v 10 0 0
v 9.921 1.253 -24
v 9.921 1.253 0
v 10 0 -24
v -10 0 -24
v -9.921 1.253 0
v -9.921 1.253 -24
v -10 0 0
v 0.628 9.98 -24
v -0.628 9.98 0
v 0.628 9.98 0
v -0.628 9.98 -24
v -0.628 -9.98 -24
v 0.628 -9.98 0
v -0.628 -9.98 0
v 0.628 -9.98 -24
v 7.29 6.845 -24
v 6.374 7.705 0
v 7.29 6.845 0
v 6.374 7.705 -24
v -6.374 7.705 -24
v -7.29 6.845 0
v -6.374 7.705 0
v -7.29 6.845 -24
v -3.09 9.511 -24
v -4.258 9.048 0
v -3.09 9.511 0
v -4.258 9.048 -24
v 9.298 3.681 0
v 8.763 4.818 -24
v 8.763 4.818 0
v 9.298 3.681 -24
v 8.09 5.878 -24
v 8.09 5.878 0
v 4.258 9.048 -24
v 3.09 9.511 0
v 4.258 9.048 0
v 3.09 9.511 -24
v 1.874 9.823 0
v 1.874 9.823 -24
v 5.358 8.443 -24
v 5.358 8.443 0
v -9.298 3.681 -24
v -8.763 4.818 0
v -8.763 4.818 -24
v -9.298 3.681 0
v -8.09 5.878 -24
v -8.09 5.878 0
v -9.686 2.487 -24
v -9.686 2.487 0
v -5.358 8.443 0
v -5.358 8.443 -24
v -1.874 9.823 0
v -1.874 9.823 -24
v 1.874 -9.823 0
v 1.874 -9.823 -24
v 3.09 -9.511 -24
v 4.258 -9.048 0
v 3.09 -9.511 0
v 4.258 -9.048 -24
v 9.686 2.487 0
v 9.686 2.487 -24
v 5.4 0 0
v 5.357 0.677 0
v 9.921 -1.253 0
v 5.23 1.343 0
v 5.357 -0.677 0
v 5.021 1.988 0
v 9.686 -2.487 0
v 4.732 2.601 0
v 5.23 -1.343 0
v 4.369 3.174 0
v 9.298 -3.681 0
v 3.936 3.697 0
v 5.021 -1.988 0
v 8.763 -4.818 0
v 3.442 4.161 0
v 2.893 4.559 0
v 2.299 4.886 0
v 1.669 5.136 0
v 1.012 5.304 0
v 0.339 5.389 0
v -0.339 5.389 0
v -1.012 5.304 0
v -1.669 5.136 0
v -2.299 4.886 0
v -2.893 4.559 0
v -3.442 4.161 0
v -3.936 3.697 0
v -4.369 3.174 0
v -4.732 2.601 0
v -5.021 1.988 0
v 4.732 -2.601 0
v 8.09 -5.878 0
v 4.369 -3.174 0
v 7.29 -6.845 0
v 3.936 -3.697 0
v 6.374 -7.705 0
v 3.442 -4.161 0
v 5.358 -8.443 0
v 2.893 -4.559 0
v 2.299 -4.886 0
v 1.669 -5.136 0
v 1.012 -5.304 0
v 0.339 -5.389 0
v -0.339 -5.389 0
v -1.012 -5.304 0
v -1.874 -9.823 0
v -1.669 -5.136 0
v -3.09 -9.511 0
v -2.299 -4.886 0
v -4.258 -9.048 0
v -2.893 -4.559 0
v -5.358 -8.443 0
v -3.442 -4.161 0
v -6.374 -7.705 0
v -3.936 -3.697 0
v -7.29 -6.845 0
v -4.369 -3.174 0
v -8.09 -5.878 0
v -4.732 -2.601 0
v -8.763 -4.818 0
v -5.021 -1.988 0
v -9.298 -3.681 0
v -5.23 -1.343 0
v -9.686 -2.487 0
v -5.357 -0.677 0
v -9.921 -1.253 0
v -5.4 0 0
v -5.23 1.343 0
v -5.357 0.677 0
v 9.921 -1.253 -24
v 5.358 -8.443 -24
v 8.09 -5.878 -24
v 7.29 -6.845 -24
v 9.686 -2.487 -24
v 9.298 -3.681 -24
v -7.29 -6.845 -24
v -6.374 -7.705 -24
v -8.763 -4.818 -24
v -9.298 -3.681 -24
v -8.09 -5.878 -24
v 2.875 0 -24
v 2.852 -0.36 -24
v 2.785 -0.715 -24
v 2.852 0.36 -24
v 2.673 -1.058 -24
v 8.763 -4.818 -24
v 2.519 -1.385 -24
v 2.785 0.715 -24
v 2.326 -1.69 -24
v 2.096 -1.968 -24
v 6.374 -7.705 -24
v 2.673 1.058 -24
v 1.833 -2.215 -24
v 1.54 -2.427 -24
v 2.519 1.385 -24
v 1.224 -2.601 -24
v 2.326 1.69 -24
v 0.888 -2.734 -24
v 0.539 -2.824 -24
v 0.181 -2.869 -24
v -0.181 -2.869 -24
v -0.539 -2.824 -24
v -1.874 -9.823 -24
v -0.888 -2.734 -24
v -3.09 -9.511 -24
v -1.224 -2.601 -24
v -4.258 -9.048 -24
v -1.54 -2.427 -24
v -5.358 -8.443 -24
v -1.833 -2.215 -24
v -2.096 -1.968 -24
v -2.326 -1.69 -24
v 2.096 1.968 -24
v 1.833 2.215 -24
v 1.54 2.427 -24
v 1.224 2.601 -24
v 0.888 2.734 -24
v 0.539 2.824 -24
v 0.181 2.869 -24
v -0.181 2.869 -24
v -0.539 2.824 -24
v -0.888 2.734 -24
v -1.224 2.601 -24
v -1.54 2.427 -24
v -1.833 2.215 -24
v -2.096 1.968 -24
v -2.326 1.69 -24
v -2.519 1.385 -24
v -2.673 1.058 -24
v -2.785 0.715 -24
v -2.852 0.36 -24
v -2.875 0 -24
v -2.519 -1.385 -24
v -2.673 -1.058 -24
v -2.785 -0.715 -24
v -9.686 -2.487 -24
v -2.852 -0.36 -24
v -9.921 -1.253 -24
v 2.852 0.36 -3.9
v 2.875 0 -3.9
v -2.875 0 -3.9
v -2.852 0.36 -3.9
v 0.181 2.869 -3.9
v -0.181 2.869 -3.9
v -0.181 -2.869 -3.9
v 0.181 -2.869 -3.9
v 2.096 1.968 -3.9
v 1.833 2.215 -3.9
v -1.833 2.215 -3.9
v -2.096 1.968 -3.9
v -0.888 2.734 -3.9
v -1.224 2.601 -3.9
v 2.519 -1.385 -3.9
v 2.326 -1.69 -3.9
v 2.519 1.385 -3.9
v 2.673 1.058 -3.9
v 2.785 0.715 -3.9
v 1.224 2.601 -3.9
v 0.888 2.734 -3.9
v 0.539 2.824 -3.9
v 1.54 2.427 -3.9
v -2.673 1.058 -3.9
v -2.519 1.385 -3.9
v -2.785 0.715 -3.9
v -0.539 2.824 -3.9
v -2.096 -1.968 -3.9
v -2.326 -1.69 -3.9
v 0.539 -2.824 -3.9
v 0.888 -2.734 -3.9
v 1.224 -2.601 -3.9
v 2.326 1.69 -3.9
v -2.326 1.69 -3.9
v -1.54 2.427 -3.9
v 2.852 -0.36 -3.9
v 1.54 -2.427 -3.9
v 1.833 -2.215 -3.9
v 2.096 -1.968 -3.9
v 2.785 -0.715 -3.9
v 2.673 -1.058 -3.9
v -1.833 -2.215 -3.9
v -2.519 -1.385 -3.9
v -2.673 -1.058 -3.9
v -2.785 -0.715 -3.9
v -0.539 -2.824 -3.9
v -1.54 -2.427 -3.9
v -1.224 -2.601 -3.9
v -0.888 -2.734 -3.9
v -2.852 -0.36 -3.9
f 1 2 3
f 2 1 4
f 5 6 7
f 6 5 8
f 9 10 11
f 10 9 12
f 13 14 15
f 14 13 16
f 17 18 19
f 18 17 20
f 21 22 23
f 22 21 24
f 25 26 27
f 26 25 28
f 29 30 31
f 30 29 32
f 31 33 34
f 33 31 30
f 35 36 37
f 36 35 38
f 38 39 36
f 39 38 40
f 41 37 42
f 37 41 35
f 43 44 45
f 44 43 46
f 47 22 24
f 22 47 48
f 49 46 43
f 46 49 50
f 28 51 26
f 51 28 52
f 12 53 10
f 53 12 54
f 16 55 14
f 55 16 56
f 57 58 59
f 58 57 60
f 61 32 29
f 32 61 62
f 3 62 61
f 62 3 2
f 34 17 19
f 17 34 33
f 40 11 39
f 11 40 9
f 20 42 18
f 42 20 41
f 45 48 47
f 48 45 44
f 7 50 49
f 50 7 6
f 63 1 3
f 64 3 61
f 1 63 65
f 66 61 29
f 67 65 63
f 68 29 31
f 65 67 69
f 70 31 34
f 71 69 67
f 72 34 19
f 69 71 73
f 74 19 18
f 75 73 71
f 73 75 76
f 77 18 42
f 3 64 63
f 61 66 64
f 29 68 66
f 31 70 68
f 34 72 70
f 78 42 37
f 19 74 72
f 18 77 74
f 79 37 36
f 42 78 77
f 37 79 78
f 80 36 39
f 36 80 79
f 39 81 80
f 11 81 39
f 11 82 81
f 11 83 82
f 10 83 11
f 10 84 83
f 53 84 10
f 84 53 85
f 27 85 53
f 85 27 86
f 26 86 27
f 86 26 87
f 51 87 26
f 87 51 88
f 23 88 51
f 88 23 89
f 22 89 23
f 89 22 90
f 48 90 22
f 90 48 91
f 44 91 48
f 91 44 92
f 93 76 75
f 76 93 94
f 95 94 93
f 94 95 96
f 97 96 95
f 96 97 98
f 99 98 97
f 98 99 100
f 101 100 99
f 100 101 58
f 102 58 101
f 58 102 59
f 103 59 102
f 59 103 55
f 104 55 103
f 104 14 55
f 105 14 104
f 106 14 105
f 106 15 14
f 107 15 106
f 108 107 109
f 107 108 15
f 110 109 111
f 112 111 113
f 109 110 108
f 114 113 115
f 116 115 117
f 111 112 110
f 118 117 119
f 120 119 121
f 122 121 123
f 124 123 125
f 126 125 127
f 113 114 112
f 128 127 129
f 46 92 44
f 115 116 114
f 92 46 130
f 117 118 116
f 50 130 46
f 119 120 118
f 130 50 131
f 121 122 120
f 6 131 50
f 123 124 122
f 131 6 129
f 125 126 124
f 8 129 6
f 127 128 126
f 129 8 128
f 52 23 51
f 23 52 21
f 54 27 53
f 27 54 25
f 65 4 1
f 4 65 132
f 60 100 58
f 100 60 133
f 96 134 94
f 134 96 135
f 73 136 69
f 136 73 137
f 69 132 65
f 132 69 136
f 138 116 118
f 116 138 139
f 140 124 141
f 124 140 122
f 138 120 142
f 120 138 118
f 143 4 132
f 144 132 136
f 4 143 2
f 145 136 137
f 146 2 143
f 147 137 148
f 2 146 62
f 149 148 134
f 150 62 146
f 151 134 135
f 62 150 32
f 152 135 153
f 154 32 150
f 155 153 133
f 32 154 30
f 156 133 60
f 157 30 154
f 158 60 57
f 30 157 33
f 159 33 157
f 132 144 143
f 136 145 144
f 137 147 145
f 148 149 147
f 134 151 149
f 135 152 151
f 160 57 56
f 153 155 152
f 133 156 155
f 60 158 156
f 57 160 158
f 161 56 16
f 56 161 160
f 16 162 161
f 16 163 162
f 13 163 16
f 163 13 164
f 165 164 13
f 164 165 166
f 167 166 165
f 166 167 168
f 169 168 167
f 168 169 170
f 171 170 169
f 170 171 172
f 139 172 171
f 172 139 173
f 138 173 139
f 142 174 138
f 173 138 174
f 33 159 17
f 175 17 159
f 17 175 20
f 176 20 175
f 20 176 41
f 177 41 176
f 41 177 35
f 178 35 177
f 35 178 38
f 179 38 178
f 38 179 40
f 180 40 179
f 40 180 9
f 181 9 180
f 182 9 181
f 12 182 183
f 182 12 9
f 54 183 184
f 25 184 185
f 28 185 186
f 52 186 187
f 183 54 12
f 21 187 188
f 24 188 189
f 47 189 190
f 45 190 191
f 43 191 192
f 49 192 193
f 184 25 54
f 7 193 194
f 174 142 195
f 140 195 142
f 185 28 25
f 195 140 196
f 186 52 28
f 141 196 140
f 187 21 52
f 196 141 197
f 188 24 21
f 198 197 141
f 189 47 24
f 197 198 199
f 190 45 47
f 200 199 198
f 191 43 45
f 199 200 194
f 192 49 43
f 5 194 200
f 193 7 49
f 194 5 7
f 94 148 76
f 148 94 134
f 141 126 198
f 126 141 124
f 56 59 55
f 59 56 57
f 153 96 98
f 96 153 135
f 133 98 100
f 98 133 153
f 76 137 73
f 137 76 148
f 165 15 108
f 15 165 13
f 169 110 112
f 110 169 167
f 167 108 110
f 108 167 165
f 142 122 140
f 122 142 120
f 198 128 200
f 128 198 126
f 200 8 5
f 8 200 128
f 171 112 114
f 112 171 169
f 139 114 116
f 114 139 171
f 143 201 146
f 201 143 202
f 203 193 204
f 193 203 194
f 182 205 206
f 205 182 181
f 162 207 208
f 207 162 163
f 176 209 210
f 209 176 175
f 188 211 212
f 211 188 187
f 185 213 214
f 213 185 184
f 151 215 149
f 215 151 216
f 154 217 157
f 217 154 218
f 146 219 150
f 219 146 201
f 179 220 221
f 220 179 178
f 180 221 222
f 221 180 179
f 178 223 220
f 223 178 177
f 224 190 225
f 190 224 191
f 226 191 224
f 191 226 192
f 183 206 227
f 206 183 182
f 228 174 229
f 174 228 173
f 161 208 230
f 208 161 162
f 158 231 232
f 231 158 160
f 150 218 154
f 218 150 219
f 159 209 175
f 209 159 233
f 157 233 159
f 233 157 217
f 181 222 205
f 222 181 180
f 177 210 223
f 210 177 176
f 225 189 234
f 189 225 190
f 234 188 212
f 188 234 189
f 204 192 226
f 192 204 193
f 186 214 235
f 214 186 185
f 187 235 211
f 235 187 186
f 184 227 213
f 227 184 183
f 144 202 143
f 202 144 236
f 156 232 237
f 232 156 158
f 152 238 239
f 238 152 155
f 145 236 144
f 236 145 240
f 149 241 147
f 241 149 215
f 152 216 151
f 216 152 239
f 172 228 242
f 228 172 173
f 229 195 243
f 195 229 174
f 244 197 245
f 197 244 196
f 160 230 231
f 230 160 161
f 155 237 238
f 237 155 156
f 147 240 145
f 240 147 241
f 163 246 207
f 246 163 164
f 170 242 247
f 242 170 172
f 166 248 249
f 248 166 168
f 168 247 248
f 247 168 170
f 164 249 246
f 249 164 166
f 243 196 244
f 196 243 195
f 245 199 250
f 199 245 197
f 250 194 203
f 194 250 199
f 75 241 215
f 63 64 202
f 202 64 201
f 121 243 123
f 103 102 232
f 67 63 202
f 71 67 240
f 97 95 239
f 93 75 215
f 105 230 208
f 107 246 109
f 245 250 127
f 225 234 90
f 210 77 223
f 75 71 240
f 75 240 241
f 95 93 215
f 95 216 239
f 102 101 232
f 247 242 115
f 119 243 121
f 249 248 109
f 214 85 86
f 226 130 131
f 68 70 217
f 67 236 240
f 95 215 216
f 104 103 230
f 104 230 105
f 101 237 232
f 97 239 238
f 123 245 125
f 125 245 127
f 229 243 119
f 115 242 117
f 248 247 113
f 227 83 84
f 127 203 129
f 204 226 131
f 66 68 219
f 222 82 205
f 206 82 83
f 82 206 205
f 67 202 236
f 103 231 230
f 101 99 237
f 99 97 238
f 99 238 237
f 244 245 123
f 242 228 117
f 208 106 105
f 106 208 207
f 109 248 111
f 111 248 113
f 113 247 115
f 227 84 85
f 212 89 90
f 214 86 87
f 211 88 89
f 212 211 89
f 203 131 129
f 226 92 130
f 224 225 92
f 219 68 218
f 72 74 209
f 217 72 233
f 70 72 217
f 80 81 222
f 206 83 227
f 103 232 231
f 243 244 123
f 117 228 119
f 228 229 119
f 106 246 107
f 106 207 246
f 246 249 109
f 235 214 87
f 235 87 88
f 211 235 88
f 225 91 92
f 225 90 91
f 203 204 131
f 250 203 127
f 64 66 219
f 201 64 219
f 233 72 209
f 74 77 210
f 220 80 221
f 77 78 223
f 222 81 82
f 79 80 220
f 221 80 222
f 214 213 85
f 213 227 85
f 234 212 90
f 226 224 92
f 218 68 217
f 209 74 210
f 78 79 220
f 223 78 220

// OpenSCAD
$fn = 50;

difference() {
	union() {
		translate(v = [0, 0, -24.0]) {
			cylinder(h = 24, r = 10.0);
		}
		#translate(v = [0, 0, -27.0]) {
			cylinder(h = 27, r = 2.875);
		}
	}
	union() {
		translate(v = [0, 0, 0]) {
			rotate(a = [0, 0, 0]) {
				difference() {
					union() {
						translate(v = [0, 0, -27.0]) {
							cylinder(h = 27, r = 2.6);
						}
						translate(v = [0, 0, -3.9]) {
							cylinder(h = 3.9, r1 = 2.875, r2 = 5.4);
						}
						translate(v = [0, 0, -27.0]) {
							cylinder(h = 27, r = 2.875);
						}
						translate(v = [0, 0, -27.0]) {
							cylinder(h = 27, r = 2.6);
						}
					}
					union();
				}
			}
		}
	}
}
